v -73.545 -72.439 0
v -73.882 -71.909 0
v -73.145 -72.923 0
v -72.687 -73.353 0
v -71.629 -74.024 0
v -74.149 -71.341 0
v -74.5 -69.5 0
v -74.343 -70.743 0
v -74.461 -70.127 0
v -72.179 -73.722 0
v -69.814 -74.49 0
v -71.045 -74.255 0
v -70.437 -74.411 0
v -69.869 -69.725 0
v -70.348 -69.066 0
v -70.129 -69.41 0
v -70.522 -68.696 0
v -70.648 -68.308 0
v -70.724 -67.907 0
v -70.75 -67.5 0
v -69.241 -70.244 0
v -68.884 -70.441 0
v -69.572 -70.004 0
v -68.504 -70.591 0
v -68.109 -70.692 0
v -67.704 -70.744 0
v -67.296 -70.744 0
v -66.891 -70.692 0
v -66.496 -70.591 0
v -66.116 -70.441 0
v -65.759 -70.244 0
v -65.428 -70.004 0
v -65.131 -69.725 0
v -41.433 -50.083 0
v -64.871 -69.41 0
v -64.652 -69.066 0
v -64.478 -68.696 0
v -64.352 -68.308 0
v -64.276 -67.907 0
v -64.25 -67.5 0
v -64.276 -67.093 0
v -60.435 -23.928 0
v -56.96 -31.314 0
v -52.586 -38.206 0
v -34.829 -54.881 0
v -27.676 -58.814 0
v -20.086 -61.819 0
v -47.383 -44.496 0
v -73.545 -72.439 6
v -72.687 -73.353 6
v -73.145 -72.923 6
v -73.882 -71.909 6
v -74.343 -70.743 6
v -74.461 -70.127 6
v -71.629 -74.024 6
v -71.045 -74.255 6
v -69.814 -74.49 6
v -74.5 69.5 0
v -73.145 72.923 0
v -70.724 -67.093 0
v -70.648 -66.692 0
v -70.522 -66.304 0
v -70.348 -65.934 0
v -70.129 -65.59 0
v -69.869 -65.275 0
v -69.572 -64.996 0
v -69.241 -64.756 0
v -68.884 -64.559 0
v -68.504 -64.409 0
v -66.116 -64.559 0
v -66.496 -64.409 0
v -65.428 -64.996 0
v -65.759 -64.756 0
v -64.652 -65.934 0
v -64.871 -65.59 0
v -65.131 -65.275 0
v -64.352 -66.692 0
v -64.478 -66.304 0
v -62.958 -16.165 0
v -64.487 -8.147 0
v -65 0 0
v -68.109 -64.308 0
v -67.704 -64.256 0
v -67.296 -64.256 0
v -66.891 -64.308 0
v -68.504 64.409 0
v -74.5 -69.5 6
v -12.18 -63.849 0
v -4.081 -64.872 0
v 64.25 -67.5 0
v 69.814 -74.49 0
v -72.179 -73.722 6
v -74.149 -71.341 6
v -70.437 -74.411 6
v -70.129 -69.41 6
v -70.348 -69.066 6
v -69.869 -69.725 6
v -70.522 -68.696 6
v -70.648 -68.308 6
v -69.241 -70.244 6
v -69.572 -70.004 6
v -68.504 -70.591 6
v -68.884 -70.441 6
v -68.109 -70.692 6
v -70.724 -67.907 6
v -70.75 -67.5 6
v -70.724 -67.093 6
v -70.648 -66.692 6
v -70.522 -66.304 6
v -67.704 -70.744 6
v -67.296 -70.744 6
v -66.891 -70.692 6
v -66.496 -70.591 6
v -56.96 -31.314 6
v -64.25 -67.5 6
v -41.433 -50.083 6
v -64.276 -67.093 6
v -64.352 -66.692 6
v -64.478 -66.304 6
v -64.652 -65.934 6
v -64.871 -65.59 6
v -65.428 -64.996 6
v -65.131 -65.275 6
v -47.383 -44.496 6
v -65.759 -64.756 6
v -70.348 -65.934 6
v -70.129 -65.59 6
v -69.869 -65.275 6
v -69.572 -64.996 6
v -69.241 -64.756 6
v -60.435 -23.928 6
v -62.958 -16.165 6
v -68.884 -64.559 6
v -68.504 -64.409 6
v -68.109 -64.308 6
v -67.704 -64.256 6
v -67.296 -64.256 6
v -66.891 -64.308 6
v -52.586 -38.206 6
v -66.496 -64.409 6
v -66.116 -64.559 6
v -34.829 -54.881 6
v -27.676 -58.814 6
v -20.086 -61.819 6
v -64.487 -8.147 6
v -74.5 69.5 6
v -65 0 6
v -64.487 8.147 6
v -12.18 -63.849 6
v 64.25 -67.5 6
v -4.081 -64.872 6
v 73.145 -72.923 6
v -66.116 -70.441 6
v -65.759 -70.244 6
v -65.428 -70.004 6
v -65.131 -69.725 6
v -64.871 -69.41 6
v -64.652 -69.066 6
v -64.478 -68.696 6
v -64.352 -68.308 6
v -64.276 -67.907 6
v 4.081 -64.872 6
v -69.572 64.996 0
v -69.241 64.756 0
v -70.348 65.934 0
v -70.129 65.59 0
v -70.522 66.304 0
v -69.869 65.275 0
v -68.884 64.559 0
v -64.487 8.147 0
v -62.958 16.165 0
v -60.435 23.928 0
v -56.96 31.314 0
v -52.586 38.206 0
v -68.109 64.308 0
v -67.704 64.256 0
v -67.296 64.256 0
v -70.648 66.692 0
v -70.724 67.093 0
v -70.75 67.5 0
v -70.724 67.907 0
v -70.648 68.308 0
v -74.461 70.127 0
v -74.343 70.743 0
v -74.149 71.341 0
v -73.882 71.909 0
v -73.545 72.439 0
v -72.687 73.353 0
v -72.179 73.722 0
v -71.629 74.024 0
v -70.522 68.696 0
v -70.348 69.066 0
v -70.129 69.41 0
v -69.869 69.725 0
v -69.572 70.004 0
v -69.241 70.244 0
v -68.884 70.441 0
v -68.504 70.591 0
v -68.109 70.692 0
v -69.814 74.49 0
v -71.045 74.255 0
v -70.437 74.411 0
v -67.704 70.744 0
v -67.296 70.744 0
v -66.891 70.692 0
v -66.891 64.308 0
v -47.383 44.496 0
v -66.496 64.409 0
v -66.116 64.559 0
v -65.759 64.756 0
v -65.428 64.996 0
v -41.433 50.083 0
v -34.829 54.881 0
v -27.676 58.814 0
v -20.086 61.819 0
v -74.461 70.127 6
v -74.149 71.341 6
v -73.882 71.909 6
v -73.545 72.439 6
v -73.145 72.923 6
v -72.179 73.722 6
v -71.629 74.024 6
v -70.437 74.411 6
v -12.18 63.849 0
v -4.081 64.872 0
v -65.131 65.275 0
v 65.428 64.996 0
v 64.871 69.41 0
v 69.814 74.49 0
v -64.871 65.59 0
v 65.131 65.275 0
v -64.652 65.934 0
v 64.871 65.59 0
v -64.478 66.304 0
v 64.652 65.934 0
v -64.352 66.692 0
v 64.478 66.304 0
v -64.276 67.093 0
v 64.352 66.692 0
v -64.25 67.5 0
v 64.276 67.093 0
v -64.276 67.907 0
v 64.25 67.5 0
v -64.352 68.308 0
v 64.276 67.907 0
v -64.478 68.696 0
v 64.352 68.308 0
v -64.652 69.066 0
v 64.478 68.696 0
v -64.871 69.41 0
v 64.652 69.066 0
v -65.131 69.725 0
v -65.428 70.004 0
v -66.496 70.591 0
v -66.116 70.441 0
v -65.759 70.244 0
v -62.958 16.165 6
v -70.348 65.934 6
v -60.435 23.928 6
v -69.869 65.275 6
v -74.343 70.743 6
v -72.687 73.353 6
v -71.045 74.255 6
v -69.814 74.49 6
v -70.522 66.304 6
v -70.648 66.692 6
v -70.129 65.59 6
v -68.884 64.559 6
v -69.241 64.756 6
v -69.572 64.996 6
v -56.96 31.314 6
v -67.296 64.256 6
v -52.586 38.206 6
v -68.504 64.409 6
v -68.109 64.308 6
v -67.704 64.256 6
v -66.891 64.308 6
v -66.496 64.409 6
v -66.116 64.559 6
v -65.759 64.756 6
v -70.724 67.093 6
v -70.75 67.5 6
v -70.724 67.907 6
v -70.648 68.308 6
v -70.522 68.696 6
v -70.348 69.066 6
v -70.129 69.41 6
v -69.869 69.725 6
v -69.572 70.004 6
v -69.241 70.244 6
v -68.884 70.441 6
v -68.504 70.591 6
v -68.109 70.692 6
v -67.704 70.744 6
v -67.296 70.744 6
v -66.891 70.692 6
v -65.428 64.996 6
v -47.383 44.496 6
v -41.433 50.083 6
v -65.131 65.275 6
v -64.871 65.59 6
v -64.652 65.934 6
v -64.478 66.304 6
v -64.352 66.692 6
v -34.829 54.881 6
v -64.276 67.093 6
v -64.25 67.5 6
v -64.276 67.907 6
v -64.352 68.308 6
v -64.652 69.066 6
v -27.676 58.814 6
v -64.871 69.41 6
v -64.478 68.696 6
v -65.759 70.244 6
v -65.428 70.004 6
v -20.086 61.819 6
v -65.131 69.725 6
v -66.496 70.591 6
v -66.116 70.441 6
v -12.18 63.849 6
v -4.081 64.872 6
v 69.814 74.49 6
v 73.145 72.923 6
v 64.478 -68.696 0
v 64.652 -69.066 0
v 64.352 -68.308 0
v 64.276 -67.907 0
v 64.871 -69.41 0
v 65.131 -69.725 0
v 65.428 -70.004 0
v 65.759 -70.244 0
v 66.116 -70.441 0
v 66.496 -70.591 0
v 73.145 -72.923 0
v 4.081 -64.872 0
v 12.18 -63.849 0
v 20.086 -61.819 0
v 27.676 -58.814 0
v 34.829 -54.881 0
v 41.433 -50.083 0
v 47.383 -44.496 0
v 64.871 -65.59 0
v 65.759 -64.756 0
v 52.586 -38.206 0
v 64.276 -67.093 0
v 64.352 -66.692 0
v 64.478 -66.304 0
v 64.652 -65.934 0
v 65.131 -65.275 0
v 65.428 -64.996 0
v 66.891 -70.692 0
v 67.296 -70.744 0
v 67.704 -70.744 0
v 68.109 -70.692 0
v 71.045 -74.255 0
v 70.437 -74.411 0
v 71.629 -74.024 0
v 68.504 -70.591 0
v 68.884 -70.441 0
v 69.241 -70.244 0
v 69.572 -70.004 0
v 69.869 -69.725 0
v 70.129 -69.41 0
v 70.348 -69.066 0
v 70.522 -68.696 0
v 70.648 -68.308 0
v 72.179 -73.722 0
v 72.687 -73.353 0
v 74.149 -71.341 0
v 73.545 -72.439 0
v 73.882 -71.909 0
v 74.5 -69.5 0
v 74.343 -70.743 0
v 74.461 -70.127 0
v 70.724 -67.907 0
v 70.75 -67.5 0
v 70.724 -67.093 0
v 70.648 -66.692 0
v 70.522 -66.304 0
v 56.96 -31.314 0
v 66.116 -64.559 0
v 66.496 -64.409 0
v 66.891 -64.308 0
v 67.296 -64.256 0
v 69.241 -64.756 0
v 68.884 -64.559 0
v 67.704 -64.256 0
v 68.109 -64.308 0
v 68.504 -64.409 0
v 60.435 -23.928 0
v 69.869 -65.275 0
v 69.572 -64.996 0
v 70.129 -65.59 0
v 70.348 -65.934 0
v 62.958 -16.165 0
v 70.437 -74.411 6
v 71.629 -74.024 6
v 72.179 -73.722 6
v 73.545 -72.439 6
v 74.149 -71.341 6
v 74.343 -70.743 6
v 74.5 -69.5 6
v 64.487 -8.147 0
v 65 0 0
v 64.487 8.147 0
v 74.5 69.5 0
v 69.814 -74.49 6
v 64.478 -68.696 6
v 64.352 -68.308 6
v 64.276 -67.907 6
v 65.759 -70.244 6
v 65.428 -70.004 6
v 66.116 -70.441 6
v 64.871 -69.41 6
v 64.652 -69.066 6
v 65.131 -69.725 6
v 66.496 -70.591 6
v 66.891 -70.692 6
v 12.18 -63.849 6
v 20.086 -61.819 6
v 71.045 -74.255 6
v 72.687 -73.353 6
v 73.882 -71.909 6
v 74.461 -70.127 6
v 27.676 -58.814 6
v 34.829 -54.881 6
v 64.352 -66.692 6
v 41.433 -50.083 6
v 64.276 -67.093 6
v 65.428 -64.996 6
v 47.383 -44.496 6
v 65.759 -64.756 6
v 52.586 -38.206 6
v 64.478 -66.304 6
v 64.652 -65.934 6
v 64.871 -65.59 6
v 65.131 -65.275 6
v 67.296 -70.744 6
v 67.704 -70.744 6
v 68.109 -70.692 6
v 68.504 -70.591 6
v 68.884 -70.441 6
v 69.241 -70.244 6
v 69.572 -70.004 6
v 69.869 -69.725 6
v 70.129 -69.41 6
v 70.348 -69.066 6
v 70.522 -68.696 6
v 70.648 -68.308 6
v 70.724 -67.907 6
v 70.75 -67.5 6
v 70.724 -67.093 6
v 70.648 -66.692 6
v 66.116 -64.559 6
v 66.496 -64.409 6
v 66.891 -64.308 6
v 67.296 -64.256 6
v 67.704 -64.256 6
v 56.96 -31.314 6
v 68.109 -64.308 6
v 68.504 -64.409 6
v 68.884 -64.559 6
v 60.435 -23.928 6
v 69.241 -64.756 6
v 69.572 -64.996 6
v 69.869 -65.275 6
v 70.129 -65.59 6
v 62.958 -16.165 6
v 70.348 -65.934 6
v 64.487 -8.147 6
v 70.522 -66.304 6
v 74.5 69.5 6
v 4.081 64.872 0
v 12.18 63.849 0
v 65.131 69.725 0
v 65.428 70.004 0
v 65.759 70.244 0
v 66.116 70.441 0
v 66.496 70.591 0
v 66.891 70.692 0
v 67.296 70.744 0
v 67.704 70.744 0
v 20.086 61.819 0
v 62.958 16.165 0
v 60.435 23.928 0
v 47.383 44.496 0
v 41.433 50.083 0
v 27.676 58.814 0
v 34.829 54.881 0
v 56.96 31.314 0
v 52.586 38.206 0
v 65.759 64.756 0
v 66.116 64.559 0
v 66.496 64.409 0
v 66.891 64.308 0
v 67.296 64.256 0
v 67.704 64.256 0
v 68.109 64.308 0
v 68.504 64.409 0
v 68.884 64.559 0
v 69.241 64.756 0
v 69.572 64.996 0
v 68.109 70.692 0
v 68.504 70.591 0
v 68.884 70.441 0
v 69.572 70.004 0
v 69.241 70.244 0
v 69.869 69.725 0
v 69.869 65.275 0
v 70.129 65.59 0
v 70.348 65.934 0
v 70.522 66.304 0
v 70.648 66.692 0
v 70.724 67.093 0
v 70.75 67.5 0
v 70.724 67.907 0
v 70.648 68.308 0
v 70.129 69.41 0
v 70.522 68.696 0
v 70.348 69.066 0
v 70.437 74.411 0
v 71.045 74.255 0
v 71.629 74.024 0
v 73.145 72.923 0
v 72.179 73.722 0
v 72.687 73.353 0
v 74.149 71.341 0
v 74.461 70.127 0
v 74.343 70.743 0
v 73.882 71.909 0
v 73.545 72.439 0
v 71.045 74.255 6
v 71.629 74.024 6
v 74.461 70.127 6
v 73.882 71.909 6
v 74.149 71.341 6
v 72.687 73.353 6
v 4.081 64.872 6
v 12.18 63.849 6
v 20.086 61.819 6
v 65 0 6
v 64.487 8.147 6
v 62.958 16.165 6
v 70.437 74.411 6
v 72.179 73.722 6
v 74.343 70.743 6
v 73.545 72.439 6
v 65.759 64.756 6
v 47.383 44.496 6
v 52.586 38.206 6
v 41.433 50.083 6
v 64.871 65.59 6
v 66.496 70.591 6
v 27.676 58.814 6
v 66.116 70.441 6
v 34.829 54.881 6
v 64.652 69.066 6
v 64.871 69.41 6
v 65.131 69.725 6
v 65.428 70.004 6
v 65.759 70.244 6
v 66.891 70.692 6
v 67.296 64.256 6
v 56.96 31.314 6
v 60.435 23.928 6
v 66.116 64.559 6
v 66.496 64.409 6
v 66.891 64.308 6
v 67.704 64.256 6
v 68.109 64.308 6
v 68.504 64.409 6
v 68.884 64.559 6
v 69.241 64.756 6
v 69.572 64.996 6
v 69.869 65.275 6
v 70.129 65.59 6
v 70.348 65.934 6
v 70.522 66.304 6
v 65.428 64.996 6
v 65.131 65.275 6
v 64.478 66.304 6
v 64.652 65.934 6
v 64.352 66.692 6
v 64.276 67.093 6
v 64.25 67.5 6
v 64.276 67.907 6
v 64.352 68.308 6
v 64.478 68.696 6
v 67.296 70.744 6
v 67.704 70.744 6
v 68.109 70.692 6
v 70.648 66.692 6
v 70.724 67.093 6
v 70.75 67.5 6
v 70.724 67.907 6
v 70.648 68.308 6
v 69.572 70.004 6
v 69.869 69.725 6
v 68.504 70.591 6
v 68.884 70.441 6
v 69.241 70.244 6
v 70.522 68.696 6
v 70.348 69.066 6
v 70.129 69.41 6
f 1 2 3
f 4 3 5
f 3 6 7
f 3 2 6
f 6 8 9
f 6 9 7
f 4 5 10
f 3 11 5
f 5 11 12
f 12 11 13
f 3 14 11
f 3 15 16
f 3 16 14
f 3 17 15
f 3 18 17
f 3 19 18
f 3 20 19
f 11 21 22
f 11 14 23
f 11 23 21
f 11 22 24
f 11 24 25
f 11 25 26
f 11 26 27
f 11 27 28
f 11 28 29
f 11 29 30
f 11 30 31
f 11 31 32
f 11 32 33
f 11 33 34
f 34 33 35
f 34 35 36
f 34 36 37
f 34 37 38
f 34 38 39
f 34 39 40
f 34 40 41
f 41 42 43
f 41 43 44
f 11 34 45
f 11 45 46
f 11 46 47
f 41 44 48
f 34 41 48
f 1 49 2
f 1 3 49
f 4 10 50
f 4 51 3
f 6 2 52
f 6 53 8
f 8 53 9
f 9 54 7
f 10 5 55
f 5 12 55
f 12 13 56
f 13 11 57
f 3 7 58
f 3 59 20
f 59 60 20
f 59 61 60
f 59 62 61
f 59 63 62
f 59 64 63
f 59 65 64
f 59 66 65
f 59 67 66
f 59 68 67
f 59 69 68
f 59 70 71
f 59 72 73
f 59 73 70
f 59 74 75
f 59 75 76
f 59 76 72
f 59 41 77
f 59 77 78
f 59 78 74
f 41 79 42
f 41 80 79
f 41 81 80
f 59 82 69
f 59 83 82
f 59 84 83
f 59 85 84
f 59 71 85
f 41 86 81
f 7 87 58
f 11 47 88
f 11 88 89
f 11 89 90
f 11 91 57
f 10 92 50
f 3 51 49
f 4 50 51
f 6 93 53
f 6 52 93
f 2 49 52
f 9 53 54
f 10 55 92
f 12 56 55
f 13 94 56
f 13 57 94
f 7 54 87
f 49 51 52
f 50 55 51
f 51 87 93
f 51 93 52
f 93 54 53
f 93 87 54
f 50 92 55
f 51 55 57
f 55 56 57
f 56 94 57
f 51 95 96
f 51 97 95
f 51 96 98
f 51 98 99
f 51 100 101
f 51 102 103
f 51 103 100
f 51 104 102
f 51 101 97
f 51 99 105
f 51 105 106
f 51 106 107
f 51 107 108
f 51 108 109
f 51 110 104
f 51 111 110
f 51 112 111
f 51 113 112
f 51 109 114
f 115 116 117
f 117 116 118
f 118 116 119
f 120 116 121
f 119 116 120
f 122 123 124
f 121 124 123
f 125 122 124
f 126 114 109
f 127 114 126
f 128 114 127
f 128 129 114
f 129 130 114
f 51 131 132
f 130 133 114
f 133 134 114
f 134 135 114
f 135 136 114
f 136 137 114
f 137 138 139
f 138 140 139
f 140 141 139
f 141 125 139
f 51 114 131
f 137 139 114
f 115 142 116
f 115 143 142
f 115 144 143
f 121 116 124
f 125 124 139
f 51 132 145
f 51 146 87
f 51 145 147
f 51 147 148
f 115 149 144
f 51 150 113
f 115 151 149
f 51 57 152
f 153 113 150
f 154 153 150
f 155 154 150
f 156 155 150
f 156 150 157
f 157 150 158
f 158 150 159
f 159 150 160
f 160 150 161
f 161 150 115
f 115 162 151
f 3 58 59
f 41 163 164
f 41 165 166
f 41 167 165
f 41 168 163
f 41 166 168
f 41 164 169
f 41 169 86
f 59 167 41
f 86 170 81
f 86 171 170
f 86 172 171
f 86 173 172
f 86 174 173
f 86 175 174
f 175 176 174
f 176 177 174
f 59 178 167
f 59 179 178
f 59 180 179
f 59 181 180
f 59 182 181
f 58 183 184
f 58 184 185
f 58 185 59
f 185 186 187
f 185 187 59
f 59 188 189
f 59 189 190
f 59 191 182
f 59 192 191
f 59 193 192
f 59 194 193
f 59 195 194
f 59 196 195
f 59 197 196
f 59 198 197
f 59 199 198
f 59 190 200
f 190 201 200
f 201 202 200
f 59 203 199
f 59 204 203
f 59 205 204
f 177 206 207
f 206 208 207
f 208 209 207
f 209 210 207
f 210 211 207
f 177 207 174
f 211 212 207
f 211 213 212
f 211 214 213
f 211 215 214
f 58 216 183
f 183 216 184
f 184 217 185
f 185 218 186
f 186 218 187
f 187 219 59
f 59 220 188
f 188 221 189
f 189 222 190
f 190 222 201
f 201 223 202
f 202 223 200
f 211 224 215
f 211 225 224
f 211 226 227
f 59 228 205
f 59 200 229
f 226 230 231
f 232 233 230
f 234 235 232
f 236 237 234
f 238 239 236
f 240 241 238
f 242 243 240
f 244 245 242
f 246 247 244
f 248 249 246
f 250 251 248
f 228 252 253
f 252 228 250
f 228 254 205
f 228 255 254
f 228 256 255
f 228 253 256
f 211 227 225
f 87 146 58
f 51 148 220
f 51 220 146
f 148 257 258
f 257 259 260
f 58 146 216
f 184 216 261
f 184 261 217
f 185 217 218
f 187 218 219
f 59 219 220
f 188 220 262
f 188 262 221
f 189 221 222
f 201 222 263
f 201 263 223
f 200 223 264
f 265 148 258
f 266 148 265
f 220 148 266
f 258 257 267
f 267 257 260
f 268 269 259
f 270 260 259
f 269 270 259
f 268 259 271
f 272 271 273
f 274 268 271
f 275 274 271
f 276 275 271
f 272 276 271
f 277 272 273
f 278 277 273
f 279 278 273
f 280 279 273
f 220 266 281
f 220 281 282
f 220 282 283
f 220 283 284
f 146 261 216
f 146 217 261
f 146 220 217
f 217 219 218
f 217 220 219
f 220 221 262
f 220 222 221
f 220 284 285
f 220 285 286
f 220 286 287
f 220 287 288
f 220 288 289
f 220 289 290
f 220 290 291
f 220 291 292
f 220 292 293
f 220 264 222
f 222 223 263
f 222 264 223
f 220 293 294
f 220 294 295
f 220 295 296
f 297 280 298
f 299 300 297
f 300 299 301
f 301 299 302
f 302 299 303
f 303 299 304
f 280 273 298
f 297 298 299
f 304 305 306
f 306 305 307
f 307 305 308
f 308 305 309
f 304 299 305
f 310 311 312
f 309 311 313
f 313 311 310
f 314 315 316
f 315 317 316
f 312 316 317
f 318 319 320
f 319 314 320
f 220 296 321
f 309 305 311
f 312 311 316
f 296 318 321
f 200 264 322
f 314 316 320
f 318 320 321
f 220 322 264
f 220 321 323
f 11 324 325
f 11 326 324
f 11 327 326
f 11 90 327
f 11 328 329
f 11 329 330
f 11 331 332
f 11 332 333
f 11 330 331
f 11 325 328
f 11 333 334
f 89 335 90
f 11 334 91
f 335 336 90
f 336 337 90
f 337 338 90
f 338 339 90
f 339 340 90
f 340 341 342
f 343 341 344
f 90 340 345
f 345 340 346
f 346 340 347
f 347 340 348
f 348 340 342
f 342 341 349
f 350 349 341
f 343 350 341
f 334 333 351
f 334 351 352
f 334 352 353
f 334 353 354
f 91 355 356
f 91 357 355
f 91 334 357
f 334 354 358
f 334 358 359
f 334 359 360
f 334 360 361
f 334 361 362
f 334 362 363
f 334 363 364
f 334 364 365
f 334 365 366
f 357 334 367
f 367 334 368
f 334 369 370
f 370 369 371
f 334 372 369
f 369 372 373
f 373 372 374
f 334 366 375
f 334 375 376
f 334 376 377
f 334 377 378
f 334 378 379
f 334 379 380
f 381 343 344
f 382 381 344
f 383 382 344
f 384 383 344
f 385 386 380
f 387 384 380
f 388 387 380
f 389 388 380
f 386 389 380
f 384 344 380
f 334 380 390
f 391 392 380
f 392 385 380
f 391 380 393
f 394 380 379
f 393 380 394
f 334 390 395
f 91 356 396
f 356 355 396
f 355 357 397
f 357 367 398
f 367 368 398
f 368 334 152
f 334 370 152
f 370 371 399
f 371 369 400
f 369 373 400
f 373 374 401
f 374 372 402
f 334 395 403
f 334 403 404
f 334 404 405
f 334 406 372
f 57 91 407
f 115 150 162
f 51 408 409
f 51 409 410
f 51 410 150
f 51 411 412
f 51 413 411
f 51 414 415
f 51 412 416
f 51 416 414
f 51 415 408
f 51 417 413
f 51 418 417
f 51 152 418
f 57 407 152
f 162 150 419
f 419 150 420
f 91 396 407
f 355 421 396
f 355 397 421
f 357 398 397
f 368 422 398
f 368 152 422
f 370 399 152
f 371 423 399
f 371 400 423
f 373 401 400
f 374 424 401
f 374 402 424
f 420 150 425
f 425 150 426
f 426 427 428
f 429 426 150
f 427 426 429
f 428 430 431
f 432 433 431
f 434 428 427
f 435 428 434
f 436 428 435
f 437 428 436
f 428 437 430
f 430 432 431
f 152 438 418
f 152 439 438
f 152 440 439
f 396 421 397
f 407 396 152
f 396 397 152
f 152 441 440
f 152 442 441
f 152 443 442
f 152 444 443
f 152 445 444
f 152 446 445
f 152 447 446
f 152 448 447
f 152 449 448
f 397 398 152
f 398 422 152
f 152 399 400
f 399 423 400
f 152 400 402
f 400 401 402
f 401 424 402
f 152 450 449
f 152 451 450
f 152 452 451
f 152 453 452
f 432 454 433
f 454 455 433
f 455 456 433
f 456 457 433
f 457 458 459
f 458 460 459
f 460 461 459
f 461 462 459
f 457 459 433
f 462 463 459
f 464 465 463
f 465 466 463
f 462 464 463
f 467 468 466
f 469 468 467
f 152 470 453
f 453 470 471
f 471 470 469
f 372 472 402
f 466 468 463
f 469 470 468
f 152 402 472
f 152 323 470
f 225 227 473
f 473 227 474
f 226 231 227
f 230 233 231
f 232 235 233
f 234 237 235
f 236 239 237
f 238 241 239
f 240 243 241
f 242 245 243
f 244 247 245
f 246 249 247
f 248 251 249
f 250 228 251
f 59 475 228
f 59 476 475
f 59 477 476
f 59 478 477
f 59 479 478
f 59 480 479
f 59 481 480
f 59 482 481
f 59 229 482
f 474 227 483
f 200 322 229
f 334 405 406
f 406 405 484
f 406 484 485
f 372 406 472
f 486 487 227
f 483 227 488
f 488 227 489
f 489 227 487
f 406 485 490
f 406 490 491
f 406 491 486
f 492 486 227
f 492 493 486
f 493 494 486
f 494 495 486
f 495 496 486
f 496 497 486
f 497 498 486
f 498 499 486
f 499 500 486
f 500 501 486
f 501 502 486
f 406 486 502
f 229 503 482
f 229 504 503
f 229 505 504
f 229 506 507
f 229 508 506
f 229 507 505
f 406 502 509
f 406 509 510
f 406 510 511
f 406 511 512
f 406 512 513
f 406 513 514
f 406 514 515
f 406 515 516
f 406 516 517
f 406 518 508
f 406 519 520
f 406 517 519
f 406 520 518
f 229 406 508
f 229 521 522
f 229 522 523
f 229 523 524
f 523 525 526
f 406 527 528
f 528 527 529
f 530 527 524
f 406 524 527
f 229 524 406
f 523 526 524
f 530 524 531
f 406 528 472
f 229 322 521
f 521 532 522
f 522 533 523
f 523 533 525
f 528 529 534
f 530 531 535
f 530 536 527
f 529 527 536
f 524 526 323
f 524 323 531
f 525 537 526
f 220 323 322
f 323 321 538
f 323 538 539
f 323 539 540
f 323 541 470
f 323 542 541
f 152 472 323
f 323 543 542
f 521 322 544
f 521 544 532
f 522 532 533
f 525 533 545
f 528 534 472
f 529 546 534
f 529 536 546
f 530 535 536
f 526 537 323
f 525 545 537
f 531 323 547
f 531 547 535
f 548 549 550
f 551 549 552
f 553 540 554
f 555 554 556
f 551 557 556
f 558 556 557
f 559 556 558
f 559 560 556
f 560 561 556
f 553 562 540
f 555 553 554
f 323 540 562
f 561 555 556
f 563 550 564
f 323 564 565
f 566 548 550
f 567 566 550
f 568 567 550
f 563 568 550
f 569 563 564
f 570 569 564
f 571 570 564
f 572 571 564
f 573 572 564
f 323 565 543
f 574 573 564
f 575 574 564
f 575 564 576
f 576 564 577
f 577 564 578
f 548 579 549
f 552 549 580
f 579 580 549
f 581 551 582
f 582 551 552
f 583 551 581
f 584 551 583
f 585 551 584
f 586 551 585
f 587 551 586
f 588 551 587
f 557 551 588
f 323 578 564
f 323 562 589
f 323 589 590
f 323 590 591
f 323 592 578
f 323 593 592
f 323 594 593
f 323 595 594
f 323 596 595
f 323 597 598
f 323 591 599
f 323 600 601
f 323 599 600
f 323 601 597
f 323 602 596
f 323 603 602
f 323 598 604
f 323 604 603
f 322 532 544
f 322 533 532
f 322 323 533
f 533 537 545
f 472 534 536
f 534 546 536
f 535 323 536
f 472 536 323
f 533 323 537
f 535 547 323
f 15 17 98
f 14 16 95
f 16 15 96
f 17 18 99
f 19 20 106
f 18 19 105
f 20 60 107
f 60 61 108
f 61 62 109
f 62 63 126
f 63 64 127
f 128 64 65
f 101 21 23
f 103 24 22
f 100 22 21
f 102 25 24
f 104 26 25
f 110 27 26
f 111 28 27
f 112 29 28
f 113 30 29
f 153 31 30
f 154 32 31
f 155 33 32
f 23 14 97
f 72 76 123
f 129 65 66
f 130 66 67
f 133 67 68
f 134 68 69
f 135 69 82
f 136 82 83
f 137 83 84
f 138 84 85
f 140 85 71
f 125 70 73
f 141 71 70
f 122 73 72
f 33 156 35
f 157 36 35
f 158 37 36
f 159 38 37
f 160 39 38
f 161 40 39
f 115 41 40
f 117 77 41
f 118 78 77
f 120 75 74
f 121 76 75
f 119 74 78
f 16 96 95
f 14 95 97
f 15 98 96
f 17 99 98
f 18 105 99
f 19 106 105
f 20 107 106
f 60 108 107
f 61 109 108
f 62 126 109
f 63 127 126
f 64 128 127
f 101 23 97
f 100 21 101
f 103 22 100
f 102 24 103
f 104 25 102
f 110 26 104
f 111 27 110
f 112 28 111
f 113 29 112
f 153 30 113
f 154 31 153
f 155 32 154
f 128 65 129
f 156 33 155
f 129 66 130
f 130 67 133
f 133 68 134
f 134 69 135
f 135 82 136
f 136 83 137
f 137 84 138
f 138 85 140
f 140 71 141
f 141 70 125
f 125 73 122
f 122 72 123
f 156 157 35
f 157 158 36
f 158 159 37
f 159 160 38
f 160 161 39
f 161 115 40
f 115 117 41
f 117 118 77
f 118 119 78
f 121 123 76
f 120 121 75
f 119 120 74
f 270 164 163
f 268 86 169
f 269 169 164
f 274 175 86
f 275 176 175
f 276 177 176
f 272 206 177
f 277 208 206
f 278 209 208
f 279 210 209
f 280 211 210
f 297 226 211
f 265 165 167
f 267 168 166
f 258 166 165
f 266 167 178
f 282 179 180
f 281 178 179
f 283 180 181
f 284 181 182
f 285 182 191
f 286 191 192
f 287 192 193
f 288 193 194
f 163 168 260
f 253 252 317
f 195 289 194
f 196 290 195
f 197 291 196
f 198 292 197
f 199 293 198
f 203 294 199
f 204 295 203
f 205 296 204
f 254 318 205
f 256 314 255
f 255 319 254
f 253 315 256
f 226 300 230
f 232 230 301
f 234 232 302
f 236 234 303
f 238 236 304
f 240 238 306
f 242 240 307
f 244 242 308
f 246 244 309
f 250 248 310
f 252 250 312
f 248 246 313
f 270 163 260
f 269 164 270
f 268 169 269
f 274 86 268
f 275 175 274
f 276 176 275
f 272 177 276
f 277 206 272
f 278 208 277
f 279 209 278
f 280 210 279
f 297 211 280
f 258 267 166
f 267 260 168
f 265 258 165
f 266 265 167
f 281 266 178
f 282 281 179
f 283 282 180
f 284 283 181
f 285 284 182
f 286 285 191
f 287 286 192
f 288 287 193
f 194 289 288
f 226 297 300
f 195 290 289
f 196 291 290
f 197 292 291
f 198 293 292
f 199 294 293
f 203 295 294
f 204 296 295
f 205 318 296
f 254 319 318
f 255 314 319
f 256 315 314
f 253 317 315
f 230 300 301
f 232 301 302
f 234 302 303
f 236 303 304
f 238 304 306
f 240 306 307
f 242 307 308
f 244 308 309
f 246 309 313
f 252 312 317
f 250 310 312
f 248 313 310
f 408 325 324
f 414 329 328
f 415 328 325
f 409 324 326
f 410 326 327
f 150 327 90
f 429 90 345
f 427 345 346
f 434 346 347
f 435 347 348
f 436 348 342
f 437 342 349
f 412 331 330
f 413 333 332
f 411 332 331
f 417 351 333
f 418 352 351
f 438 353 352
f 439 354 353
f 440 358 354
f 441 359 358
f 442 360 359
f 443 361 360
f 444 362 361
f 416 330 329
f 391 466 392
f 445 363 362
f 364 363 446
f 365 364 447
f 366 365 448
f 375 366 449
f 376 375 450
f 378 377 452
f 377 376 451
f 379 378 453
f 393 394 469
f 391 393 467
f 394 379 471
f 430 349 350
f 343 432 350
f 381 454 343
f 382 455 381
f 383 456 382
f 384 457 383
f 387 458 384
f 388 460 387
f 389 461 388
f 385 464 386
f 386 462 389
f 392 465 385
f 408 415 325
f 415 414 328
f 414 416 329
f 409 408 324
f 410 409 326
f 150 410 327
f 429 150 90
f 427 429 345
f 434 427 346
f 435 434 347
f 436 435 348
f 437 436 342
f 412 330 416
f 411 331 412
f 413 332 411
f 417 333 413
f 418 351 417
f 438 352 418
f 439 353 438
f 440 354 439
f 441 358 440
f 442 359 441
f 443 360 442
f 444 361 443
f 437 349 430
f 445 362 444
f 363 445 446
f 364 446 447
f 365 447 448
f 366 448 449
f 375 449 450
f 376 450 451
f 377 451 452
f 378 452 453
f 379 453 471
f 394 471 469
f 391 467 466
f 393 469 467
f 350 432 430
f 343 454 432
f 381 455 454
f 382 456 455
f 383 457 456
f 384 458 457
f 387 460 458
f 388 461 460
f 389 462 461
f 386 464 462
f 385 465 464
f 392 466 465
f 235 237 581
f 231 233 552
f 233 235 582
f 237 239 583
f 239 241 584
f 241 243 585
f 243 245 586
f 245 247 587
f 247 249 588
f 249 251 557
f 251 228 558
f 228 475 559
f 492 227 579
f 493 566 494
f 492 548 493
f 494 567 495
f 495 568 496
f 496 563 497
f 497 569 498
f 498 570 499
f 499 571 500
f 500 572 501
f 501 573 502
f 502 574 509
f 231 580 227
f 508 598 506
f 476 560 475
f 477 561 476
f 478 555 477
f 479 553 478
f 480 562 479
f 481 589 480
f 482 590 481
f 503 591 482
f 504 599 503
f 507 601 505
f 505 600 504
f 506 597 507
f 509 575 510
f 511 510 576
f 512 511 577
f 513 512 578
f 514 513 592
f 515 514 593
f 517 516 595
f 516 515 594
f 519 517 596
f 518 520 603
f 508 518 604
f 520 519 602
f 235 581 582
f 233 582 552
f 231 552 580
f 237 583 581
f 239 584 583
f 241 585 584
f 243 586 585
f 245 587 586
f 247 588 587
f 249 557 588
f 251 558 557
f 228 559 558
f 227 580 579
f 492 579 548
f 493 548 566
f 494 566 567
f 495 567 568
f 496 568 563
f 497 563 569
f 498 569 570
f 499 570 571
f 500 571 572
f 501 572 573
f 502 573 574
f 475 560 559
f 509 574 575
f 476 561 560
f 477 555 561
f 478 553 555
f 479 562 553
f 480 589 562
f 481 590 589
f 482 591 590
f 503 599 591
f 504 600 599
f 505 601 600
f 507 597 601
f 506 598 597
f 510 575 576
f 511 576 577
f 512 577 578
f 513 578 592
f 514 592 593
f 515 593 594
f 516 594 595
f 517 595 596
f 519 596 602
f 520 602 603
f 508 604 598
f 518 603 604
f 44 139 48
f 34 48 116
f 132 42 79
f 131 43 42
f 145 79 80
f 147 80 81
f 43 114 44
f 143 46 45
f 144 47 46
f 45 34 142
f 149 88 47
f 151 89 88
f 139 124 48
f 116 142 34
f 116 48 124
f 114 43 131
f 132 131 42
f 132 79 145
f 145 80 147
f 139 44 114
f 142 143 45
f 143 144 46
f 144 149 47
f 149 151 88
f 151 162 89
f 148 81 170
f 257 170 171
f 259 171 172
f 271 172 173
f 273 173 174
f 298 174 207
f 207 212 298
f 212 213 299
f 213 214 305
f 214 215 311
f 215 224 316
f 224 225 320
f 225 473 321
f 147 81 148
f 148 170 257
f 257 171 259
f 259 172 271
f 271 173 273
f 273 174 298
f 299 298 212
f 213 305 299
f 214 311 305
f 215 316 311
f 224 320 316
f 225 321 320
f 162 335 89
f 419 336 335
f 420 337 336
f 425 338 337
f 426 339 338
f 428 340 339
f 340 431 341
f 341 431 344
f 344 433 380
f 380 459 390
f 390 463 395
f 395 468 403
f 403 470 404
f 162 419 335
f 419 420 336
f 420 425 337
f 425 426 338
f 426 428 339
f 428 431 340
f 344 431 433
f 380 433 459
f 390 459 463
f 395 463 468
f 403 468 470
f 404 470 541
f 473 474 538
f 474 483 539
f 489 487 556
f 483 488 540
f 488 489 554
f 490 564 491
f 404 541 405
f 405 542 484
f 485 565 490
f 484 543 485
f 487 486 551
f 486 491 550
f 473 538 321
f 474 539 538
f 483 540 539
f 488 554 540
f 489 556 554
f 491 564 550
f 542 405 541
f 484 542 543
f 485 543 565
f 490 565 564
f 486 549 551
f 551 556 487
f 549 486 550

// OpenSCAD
$fn = 50;

difference() {
	union() {
		hull() {
			translate(v = [-69.5, 69.5, 0]) {
				cylinder(h = 6, r = 5);
			}
			translate(v = [69.5, 69.5, 0]) {
				cylinder(h = 6, r = 5);
			}
			translate(v = [-69.5, -69.5, 0]) {
				cylinder(h = 6, r = 5);
			}
			translate(v = [69.5, -69.5, 0]) {
				cylinder(h = 6, r = 5);
			}
		}
	}
	union() {
		translate(v = [-67.5, -67.5, -100.0]) {
			cylinder(h = 200, r = 3.25);
		}
		translate(v = [-67.5, 67.5, -100.0]) {
			cylinder(h = 200, r = 3.25);
		}
		translate(v = [67.5, -67.5, -100.0]) {
			cylinder(h = 200, r = 3.25);
		}
		translate(v = [67.5, 67.5, -100.0]) {
			cylinder(h = 200, r = 3.25);
		}
		translate(v = [-67.5, -67.5, -100.0]) {
			cylinder(h = 200, r = 1.8);
		}
		translate(v = [-67.5, 67.5, -100.0]) {
			cylinder(h = 200, r = 1.8);
		}
		translate(v = [67.5, -67.5, -100.0]) {
			cylinder(h = 200, r = 1.8);
		}
		translate(v = [67.5, 67.5, -100.0]) {
			cylinder(h = 200, r = 1.8);
		}
		cylinder(h = 6, r = 65.0);
	}
}
